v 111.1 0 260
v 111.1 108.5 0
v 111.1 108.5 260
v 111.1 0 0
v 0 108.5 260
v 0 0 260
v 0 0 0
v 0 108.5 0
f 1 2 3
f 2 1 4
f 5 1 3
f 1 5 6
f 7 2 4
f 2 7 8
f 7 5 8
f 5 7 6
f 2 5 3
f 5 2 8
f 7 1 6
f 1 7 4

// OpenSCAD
//inside of midleton wooden box with double doors
totHeight = 260 ;
totWidth = 111.1 ;
totDepth = 108.5 ;
dimensions = [ totWidth, totDepth, totHeight] ;
wiggle = [1.25, 1, 1] ;
volume = dimensions - wiggle ;

//inner structure definitions
structDivs = 20 ;
structStrength = 1 ;
structH = totHeight/structDivs ;
post = [structStrength, structStrength, structH] ;
block = [structStrength, structStrength, structStrength] ;

//Volume Visual
#cube( dimensions );

FL = [0, 0, 0];
FR = [volume.x - post.x, 0, 0];
BR = [volume.x - post.x, volume.y - post.y, 0];
BL = [0, volume.y - post.y, 0];

i=0;
translate(wiggle/2) *union() {
    translate ([0,0,i]) {
        //left and right sides
        hull() {
            translate( FR ) cube( post );
            translate( BR ) cube( post );
        }
        hull() {
            translate( FL ) cube( post );
            translate( BL ) cube( post );
        }
        //Base plate
        hull() {
            cube([volume.x, post.y, post.y]) ;
            translate ([0, 0, 0] + BL) cube([volume.x, post.y, post.y]) ;
        }
    }
}

translate(wiggle/2)
hull(){
    translate(FR) cube(block);
    translate(BL) cube(block);
}
